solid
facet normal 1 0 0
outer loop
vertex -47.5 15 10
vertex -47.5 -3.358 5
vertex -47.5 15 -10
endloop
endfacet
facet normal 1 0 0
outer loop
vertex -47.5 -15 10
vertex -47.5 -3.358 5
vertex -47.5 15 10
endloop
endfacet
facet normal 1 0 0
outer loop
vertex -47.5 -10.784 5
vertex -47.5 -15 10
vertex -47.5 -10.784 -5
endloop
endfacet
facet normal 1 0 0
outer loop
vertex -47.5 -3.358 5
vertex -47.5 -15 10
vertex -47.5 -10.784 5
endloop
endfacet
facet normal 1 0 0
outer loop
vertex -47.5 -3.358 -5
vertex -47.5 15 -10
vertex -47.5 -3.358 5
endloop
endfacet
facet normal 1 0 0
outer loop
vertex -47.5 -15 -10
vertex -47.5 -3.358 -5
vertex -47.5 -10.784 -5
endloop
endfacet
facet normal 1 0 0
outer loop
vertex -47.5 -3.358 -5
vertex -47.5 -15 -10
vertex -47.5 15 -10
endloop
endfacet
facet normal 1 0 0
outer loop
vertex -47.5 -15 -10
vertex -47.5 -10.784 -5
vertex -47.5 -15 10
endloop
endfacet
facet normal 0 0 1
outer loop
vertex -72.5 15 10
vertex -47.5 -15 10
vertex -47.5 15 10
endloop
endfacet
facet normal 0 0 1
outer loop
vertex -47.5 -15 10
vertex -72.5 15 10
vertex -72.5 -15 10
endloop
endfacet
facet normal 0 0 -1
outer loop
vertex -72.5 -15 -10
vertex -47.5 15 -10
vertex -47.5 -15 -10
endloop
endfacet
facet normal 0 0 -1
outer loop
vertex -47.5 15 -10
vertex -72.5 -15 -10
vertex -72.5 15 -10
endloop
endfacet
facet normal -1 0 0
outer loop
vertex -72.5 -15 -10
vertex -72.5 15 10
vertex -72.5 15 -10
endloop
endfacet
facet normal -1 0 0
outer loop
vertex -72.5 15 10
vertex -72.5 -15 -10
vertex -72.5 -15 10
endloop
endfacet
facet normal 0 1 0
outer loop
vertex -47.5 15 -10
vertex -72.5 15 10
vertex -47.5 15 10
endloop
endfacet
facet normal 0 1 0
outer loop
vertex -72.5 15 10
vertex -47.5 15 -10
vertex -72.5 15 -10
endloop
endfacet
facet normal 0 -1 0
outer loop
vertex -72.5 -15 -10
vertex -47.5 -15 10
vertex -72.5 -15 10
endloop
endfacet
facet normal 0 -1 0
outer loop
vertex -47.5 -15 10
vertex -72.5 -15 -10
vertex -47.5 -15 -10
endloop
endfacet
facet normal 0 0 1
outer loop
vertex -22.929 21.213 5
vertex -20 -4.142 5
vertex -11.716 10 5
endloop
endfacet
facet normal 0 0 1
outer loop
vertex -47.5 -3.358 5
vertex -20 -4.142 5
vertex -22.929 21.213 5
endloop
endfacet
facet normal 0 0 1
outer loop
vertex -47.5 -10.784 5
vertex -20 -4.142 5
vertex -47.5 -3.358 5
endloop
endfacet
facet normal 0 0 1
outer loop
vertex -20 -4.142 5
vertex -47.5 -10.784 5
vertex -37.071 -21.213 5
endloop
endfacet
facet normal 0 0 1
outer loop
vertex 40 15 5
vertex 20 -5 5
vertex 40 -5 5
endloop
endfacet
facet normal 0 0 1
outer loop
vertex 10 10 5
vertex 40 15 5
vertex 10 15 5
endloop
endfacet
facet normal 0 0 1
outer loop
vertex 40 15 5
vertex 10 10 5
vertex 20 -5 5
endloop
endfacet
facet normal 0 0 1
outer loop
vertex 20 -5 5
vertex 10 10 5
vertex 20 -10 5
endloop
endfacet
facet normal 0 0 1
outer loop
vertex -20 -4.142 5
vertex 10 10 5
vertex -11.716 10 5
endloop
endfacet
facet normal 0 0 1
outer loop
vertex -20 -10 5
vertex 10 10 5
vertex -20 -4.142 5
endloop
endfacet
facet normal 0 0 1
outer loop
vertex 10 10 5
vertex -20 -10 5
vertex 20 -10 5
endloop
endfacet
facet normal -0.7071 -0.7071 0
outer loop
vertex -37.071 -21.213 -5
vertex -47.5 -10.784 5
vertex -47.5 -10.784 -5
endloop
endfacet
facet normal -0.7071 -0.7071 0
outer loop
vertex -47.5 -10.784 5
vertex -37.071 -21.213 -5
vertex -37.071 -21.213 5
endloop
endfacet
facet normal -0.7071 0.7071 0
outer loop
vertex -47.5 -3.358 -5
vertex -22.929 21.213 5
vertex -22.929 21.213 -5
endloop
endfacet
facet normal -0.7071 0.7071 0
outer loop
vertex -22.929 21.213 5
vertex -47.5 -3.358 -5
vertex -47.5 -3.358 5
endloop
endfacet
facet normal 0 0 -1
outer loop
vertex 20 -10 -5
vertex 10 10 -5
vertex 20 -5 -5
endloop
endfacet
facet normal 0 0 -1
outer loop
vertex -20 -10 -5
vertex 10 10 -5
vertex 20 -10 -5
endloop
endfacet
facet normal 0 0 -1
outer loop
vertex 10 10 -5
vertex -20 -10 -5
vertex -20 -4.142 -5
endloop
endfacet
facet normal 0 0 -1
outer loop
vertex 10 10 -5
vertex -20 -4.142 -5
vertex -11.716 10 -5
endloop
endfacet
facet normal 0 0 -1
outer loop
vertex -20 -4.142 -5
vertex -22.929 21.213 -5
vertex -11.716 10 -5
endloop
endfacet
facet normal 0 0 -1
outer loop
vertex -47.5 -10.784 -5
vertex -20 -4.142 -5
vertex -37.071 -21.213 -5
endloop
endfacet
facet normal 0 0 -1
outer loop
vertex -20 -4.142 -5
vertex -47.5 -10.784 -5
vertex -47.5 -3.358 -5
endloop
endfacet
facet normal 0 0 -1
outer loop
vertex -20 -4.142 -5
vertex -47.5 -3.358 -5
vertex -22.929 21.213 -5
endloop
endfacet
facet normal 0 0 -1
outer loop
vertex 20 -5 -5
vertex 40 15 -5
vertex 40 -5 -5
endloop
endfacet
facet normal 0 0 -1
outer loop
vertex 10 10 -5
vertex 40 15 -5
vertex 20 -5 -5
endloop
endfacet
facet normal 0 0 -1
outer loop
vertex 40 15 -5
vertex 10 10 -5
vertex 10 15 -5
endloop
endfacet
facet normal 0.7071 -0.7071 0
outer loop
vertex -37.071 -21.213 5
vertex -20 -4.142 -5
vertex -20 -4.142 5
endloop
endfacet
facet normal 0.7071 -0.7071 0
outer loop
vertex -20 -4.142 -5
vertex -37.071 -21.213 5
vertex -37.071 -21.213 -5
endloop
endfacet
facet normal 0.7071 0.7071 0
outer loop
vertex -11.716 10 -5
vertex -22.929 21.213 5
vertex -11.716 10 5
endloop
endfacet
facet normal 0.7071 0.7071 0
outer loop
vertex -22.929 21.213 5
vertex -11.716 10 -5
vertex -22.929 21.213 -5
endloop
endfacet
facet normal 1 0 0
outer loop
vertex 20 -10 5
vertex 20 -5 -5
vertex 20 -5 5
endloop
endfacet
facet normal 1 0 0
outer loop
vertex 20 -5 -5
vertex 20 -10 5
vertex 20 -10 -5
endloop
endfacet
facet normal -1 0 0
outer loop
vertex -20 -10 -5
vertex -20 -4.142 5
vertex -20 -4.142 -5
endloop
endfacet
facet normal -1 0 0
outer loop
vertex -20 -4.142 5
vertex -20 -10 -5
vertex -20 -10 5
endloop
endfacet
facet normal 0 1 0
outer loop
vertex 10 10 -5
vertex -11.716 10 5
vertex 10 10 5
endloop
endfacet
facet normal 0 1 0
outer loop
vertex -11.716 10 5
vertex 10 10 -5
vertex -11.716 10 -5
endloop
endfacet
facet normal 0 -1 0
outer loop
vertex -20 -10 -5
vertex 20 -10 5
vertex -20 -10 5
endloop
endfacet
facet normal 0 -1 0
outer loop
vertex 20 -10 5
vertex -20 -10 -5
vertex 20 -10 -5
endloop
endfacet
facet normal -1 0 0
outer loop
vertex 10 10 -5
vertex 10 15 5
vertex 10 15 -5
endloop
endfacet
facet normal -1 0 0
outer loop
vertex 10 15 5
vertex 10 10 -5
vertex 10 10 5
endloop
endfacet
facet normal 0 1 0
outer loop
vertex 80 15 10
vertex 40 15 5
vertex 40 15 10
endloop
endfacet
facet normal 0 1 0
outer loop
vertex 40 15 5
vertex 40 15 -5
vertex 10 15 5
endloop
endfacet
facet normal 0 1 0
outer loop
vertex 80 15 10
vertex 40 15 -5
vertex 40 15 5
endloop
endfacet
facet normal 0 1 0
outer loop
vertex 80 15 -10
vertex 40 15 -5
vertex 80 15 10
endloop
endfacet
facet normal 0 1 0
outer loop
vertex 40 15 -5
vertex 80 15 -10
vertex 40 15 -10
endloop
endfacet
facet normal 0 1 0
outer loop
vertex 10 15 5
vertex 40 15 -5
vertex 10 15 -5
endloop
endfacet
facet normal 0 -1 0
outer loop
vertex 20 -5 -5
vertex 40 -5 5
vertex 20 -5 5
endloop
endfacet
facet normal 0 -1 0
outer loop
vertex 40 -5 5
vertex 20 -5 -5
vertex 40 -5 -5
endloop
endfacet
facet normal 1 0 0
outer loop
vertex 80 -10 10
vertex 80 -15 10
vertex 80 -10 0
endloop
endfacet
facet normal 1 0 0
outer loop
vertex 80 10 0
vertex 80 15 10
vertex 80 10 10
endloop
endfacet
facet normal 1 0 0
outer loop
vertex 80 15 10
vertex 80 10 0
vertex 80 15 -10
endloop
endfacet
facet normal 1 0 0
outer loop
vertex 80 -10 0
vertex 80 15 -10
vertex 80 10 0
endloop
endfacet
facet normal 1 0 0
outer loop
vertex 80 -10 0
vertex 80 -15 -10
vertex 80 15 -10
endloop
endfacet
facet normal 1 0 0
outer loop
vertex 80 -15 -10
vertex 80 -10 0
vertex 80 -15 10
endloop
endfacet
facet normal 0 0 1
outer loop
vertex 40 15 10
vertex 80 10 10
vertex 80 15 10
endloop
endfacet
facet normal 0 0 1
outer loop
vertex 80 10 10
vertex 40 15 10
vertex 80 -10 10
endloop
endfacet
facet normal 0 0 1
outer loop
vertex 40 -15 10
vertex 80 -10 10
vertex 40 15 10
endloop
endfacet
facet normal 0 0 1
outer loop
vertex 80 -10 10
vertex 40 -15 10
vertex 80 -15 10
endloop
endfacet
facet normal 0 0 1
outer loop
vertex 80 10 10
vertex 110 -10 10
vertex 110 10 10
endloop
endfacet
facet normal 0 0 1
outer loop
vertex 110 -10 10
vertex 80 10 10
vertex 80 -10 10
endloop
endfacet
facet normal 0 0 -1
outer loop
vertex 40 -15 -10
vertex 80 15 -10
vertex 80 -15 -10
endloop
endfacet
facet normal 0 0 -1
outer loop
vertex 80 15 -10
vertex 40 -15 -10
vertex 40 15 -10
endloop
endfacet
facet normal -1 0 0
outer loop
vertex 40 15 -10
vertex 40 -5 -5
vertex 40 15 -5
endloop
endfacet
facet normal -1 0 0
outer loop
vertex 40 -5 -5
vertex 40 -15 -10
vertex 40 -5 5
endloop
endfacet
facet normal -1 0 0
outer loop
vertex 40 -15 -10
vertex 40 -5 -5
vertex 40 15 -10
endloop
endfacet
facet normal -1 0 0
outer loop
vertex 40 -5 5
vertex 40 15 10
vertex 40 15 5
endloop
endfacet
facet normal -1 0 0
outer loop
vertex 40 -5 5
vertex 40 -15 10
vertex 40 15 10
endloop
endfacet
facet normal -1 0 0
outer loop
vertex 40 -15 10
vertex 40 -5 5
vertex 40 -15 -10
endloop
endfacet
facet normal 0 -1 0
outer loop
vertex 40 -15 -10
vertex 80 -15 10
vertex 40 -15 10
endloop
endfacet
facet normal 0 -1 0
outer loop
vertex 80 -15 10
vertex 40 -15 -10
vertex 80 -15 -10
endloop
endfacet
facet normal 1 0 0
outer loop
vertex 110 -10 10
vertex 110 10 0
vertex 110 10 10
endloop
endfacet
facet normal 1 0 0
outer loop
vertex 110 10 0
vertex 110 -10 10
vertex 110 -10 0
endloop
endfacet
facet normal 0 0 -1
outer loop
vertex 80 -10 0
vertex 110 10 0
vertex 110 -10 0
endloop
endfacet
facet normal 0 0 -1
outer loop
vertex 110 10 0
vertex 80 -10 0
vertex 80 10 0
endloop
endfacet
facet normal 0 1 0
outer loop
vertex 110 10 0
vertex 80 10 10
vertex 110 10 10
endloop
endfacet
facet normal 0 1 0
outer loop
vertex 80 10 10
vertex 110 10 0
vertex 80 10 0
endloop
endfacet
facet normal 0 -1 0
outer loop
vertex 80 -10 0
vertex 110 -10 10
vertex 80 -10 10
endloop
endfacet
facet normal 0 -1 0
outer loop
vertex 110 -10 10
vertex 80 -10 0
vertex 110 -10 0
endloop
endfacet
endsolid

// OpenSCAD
// Define the dimensions of the rectangular blocks
block_length_1 = 25;  // Adjusted length for Block 1 to match the original model
block_width_1 = 30;   // Adjusted width for Block 1 to match the original model
block_height_1 = 20;  // Adjusted height for Block 1 to match the original model

block_length_2 = 40;  // Length for Block 2 remains the same
block_width_2 = 20;   // Width for Block 2 remains the same
block_height_2 = 10;  // Height for Block 2 remains the same

block_length_3 = 40;  // Length for Block 3 remains the same
block_width_3 = 20;   // Width for Block 3 remains the same
block_height_3 = 10;  // Height for Block 3 remains the same

block_length_4 = 40;  // Length for Block 4 remains the same
block_width_4 = 20;   // Width for Block 4 remains the same
block_height_4 = 10;  // Height for Block 4 remains the same

block_length_5 = 40;  // Adjusted length for Block 5 to match the original model
block_width_5 = 30;   // Adjusted width for Block 5 to match the original model
block_height_5 = 20;  // Adjusted height for Block 5 to match the original model

block_length_6 = 40;  // Length for Block 6 remains the same
block_width_6 = 20;   // Width for Block 6 remains the same
block_height_6 = 10;  // Height for Block 6 remains the same

// Function to create a rectangular block
module rectangular_block(length, width, height) {
    color("white") {
        cube([length, width, height], center = true);
    }
}

// Generate six rectangular blocks with modifications
translate([-60, 0, 0]) rectangular_block(block_length_1, block_width_1, block_height_1);  // Block 1
translate([-30, 0, 0]) rotate([0, 0, 45]) rectangular_block(block_length_2, block_width_2, block_height_2);  // Block 2 rotated to match original
translate([0, 0, 0]) rectangular_block(block_length_3, block_width_3, block_height_3);    // Block 3 repositioned closer to center
translate([30, 5, 0]) rectangular_block(block_length_4, block_width_4, block_height_4);   // Block 4 remains the same
translate([60, 0, 0]) rectangular_block(block_length_5, block_width_5, block_height_5);   // Block 5 dimensions adjusted
translate([90, 0, 5]) rectangular_block(block_length_6, block_width_6, block_height_6);   // Block 6 adjusted vertically
